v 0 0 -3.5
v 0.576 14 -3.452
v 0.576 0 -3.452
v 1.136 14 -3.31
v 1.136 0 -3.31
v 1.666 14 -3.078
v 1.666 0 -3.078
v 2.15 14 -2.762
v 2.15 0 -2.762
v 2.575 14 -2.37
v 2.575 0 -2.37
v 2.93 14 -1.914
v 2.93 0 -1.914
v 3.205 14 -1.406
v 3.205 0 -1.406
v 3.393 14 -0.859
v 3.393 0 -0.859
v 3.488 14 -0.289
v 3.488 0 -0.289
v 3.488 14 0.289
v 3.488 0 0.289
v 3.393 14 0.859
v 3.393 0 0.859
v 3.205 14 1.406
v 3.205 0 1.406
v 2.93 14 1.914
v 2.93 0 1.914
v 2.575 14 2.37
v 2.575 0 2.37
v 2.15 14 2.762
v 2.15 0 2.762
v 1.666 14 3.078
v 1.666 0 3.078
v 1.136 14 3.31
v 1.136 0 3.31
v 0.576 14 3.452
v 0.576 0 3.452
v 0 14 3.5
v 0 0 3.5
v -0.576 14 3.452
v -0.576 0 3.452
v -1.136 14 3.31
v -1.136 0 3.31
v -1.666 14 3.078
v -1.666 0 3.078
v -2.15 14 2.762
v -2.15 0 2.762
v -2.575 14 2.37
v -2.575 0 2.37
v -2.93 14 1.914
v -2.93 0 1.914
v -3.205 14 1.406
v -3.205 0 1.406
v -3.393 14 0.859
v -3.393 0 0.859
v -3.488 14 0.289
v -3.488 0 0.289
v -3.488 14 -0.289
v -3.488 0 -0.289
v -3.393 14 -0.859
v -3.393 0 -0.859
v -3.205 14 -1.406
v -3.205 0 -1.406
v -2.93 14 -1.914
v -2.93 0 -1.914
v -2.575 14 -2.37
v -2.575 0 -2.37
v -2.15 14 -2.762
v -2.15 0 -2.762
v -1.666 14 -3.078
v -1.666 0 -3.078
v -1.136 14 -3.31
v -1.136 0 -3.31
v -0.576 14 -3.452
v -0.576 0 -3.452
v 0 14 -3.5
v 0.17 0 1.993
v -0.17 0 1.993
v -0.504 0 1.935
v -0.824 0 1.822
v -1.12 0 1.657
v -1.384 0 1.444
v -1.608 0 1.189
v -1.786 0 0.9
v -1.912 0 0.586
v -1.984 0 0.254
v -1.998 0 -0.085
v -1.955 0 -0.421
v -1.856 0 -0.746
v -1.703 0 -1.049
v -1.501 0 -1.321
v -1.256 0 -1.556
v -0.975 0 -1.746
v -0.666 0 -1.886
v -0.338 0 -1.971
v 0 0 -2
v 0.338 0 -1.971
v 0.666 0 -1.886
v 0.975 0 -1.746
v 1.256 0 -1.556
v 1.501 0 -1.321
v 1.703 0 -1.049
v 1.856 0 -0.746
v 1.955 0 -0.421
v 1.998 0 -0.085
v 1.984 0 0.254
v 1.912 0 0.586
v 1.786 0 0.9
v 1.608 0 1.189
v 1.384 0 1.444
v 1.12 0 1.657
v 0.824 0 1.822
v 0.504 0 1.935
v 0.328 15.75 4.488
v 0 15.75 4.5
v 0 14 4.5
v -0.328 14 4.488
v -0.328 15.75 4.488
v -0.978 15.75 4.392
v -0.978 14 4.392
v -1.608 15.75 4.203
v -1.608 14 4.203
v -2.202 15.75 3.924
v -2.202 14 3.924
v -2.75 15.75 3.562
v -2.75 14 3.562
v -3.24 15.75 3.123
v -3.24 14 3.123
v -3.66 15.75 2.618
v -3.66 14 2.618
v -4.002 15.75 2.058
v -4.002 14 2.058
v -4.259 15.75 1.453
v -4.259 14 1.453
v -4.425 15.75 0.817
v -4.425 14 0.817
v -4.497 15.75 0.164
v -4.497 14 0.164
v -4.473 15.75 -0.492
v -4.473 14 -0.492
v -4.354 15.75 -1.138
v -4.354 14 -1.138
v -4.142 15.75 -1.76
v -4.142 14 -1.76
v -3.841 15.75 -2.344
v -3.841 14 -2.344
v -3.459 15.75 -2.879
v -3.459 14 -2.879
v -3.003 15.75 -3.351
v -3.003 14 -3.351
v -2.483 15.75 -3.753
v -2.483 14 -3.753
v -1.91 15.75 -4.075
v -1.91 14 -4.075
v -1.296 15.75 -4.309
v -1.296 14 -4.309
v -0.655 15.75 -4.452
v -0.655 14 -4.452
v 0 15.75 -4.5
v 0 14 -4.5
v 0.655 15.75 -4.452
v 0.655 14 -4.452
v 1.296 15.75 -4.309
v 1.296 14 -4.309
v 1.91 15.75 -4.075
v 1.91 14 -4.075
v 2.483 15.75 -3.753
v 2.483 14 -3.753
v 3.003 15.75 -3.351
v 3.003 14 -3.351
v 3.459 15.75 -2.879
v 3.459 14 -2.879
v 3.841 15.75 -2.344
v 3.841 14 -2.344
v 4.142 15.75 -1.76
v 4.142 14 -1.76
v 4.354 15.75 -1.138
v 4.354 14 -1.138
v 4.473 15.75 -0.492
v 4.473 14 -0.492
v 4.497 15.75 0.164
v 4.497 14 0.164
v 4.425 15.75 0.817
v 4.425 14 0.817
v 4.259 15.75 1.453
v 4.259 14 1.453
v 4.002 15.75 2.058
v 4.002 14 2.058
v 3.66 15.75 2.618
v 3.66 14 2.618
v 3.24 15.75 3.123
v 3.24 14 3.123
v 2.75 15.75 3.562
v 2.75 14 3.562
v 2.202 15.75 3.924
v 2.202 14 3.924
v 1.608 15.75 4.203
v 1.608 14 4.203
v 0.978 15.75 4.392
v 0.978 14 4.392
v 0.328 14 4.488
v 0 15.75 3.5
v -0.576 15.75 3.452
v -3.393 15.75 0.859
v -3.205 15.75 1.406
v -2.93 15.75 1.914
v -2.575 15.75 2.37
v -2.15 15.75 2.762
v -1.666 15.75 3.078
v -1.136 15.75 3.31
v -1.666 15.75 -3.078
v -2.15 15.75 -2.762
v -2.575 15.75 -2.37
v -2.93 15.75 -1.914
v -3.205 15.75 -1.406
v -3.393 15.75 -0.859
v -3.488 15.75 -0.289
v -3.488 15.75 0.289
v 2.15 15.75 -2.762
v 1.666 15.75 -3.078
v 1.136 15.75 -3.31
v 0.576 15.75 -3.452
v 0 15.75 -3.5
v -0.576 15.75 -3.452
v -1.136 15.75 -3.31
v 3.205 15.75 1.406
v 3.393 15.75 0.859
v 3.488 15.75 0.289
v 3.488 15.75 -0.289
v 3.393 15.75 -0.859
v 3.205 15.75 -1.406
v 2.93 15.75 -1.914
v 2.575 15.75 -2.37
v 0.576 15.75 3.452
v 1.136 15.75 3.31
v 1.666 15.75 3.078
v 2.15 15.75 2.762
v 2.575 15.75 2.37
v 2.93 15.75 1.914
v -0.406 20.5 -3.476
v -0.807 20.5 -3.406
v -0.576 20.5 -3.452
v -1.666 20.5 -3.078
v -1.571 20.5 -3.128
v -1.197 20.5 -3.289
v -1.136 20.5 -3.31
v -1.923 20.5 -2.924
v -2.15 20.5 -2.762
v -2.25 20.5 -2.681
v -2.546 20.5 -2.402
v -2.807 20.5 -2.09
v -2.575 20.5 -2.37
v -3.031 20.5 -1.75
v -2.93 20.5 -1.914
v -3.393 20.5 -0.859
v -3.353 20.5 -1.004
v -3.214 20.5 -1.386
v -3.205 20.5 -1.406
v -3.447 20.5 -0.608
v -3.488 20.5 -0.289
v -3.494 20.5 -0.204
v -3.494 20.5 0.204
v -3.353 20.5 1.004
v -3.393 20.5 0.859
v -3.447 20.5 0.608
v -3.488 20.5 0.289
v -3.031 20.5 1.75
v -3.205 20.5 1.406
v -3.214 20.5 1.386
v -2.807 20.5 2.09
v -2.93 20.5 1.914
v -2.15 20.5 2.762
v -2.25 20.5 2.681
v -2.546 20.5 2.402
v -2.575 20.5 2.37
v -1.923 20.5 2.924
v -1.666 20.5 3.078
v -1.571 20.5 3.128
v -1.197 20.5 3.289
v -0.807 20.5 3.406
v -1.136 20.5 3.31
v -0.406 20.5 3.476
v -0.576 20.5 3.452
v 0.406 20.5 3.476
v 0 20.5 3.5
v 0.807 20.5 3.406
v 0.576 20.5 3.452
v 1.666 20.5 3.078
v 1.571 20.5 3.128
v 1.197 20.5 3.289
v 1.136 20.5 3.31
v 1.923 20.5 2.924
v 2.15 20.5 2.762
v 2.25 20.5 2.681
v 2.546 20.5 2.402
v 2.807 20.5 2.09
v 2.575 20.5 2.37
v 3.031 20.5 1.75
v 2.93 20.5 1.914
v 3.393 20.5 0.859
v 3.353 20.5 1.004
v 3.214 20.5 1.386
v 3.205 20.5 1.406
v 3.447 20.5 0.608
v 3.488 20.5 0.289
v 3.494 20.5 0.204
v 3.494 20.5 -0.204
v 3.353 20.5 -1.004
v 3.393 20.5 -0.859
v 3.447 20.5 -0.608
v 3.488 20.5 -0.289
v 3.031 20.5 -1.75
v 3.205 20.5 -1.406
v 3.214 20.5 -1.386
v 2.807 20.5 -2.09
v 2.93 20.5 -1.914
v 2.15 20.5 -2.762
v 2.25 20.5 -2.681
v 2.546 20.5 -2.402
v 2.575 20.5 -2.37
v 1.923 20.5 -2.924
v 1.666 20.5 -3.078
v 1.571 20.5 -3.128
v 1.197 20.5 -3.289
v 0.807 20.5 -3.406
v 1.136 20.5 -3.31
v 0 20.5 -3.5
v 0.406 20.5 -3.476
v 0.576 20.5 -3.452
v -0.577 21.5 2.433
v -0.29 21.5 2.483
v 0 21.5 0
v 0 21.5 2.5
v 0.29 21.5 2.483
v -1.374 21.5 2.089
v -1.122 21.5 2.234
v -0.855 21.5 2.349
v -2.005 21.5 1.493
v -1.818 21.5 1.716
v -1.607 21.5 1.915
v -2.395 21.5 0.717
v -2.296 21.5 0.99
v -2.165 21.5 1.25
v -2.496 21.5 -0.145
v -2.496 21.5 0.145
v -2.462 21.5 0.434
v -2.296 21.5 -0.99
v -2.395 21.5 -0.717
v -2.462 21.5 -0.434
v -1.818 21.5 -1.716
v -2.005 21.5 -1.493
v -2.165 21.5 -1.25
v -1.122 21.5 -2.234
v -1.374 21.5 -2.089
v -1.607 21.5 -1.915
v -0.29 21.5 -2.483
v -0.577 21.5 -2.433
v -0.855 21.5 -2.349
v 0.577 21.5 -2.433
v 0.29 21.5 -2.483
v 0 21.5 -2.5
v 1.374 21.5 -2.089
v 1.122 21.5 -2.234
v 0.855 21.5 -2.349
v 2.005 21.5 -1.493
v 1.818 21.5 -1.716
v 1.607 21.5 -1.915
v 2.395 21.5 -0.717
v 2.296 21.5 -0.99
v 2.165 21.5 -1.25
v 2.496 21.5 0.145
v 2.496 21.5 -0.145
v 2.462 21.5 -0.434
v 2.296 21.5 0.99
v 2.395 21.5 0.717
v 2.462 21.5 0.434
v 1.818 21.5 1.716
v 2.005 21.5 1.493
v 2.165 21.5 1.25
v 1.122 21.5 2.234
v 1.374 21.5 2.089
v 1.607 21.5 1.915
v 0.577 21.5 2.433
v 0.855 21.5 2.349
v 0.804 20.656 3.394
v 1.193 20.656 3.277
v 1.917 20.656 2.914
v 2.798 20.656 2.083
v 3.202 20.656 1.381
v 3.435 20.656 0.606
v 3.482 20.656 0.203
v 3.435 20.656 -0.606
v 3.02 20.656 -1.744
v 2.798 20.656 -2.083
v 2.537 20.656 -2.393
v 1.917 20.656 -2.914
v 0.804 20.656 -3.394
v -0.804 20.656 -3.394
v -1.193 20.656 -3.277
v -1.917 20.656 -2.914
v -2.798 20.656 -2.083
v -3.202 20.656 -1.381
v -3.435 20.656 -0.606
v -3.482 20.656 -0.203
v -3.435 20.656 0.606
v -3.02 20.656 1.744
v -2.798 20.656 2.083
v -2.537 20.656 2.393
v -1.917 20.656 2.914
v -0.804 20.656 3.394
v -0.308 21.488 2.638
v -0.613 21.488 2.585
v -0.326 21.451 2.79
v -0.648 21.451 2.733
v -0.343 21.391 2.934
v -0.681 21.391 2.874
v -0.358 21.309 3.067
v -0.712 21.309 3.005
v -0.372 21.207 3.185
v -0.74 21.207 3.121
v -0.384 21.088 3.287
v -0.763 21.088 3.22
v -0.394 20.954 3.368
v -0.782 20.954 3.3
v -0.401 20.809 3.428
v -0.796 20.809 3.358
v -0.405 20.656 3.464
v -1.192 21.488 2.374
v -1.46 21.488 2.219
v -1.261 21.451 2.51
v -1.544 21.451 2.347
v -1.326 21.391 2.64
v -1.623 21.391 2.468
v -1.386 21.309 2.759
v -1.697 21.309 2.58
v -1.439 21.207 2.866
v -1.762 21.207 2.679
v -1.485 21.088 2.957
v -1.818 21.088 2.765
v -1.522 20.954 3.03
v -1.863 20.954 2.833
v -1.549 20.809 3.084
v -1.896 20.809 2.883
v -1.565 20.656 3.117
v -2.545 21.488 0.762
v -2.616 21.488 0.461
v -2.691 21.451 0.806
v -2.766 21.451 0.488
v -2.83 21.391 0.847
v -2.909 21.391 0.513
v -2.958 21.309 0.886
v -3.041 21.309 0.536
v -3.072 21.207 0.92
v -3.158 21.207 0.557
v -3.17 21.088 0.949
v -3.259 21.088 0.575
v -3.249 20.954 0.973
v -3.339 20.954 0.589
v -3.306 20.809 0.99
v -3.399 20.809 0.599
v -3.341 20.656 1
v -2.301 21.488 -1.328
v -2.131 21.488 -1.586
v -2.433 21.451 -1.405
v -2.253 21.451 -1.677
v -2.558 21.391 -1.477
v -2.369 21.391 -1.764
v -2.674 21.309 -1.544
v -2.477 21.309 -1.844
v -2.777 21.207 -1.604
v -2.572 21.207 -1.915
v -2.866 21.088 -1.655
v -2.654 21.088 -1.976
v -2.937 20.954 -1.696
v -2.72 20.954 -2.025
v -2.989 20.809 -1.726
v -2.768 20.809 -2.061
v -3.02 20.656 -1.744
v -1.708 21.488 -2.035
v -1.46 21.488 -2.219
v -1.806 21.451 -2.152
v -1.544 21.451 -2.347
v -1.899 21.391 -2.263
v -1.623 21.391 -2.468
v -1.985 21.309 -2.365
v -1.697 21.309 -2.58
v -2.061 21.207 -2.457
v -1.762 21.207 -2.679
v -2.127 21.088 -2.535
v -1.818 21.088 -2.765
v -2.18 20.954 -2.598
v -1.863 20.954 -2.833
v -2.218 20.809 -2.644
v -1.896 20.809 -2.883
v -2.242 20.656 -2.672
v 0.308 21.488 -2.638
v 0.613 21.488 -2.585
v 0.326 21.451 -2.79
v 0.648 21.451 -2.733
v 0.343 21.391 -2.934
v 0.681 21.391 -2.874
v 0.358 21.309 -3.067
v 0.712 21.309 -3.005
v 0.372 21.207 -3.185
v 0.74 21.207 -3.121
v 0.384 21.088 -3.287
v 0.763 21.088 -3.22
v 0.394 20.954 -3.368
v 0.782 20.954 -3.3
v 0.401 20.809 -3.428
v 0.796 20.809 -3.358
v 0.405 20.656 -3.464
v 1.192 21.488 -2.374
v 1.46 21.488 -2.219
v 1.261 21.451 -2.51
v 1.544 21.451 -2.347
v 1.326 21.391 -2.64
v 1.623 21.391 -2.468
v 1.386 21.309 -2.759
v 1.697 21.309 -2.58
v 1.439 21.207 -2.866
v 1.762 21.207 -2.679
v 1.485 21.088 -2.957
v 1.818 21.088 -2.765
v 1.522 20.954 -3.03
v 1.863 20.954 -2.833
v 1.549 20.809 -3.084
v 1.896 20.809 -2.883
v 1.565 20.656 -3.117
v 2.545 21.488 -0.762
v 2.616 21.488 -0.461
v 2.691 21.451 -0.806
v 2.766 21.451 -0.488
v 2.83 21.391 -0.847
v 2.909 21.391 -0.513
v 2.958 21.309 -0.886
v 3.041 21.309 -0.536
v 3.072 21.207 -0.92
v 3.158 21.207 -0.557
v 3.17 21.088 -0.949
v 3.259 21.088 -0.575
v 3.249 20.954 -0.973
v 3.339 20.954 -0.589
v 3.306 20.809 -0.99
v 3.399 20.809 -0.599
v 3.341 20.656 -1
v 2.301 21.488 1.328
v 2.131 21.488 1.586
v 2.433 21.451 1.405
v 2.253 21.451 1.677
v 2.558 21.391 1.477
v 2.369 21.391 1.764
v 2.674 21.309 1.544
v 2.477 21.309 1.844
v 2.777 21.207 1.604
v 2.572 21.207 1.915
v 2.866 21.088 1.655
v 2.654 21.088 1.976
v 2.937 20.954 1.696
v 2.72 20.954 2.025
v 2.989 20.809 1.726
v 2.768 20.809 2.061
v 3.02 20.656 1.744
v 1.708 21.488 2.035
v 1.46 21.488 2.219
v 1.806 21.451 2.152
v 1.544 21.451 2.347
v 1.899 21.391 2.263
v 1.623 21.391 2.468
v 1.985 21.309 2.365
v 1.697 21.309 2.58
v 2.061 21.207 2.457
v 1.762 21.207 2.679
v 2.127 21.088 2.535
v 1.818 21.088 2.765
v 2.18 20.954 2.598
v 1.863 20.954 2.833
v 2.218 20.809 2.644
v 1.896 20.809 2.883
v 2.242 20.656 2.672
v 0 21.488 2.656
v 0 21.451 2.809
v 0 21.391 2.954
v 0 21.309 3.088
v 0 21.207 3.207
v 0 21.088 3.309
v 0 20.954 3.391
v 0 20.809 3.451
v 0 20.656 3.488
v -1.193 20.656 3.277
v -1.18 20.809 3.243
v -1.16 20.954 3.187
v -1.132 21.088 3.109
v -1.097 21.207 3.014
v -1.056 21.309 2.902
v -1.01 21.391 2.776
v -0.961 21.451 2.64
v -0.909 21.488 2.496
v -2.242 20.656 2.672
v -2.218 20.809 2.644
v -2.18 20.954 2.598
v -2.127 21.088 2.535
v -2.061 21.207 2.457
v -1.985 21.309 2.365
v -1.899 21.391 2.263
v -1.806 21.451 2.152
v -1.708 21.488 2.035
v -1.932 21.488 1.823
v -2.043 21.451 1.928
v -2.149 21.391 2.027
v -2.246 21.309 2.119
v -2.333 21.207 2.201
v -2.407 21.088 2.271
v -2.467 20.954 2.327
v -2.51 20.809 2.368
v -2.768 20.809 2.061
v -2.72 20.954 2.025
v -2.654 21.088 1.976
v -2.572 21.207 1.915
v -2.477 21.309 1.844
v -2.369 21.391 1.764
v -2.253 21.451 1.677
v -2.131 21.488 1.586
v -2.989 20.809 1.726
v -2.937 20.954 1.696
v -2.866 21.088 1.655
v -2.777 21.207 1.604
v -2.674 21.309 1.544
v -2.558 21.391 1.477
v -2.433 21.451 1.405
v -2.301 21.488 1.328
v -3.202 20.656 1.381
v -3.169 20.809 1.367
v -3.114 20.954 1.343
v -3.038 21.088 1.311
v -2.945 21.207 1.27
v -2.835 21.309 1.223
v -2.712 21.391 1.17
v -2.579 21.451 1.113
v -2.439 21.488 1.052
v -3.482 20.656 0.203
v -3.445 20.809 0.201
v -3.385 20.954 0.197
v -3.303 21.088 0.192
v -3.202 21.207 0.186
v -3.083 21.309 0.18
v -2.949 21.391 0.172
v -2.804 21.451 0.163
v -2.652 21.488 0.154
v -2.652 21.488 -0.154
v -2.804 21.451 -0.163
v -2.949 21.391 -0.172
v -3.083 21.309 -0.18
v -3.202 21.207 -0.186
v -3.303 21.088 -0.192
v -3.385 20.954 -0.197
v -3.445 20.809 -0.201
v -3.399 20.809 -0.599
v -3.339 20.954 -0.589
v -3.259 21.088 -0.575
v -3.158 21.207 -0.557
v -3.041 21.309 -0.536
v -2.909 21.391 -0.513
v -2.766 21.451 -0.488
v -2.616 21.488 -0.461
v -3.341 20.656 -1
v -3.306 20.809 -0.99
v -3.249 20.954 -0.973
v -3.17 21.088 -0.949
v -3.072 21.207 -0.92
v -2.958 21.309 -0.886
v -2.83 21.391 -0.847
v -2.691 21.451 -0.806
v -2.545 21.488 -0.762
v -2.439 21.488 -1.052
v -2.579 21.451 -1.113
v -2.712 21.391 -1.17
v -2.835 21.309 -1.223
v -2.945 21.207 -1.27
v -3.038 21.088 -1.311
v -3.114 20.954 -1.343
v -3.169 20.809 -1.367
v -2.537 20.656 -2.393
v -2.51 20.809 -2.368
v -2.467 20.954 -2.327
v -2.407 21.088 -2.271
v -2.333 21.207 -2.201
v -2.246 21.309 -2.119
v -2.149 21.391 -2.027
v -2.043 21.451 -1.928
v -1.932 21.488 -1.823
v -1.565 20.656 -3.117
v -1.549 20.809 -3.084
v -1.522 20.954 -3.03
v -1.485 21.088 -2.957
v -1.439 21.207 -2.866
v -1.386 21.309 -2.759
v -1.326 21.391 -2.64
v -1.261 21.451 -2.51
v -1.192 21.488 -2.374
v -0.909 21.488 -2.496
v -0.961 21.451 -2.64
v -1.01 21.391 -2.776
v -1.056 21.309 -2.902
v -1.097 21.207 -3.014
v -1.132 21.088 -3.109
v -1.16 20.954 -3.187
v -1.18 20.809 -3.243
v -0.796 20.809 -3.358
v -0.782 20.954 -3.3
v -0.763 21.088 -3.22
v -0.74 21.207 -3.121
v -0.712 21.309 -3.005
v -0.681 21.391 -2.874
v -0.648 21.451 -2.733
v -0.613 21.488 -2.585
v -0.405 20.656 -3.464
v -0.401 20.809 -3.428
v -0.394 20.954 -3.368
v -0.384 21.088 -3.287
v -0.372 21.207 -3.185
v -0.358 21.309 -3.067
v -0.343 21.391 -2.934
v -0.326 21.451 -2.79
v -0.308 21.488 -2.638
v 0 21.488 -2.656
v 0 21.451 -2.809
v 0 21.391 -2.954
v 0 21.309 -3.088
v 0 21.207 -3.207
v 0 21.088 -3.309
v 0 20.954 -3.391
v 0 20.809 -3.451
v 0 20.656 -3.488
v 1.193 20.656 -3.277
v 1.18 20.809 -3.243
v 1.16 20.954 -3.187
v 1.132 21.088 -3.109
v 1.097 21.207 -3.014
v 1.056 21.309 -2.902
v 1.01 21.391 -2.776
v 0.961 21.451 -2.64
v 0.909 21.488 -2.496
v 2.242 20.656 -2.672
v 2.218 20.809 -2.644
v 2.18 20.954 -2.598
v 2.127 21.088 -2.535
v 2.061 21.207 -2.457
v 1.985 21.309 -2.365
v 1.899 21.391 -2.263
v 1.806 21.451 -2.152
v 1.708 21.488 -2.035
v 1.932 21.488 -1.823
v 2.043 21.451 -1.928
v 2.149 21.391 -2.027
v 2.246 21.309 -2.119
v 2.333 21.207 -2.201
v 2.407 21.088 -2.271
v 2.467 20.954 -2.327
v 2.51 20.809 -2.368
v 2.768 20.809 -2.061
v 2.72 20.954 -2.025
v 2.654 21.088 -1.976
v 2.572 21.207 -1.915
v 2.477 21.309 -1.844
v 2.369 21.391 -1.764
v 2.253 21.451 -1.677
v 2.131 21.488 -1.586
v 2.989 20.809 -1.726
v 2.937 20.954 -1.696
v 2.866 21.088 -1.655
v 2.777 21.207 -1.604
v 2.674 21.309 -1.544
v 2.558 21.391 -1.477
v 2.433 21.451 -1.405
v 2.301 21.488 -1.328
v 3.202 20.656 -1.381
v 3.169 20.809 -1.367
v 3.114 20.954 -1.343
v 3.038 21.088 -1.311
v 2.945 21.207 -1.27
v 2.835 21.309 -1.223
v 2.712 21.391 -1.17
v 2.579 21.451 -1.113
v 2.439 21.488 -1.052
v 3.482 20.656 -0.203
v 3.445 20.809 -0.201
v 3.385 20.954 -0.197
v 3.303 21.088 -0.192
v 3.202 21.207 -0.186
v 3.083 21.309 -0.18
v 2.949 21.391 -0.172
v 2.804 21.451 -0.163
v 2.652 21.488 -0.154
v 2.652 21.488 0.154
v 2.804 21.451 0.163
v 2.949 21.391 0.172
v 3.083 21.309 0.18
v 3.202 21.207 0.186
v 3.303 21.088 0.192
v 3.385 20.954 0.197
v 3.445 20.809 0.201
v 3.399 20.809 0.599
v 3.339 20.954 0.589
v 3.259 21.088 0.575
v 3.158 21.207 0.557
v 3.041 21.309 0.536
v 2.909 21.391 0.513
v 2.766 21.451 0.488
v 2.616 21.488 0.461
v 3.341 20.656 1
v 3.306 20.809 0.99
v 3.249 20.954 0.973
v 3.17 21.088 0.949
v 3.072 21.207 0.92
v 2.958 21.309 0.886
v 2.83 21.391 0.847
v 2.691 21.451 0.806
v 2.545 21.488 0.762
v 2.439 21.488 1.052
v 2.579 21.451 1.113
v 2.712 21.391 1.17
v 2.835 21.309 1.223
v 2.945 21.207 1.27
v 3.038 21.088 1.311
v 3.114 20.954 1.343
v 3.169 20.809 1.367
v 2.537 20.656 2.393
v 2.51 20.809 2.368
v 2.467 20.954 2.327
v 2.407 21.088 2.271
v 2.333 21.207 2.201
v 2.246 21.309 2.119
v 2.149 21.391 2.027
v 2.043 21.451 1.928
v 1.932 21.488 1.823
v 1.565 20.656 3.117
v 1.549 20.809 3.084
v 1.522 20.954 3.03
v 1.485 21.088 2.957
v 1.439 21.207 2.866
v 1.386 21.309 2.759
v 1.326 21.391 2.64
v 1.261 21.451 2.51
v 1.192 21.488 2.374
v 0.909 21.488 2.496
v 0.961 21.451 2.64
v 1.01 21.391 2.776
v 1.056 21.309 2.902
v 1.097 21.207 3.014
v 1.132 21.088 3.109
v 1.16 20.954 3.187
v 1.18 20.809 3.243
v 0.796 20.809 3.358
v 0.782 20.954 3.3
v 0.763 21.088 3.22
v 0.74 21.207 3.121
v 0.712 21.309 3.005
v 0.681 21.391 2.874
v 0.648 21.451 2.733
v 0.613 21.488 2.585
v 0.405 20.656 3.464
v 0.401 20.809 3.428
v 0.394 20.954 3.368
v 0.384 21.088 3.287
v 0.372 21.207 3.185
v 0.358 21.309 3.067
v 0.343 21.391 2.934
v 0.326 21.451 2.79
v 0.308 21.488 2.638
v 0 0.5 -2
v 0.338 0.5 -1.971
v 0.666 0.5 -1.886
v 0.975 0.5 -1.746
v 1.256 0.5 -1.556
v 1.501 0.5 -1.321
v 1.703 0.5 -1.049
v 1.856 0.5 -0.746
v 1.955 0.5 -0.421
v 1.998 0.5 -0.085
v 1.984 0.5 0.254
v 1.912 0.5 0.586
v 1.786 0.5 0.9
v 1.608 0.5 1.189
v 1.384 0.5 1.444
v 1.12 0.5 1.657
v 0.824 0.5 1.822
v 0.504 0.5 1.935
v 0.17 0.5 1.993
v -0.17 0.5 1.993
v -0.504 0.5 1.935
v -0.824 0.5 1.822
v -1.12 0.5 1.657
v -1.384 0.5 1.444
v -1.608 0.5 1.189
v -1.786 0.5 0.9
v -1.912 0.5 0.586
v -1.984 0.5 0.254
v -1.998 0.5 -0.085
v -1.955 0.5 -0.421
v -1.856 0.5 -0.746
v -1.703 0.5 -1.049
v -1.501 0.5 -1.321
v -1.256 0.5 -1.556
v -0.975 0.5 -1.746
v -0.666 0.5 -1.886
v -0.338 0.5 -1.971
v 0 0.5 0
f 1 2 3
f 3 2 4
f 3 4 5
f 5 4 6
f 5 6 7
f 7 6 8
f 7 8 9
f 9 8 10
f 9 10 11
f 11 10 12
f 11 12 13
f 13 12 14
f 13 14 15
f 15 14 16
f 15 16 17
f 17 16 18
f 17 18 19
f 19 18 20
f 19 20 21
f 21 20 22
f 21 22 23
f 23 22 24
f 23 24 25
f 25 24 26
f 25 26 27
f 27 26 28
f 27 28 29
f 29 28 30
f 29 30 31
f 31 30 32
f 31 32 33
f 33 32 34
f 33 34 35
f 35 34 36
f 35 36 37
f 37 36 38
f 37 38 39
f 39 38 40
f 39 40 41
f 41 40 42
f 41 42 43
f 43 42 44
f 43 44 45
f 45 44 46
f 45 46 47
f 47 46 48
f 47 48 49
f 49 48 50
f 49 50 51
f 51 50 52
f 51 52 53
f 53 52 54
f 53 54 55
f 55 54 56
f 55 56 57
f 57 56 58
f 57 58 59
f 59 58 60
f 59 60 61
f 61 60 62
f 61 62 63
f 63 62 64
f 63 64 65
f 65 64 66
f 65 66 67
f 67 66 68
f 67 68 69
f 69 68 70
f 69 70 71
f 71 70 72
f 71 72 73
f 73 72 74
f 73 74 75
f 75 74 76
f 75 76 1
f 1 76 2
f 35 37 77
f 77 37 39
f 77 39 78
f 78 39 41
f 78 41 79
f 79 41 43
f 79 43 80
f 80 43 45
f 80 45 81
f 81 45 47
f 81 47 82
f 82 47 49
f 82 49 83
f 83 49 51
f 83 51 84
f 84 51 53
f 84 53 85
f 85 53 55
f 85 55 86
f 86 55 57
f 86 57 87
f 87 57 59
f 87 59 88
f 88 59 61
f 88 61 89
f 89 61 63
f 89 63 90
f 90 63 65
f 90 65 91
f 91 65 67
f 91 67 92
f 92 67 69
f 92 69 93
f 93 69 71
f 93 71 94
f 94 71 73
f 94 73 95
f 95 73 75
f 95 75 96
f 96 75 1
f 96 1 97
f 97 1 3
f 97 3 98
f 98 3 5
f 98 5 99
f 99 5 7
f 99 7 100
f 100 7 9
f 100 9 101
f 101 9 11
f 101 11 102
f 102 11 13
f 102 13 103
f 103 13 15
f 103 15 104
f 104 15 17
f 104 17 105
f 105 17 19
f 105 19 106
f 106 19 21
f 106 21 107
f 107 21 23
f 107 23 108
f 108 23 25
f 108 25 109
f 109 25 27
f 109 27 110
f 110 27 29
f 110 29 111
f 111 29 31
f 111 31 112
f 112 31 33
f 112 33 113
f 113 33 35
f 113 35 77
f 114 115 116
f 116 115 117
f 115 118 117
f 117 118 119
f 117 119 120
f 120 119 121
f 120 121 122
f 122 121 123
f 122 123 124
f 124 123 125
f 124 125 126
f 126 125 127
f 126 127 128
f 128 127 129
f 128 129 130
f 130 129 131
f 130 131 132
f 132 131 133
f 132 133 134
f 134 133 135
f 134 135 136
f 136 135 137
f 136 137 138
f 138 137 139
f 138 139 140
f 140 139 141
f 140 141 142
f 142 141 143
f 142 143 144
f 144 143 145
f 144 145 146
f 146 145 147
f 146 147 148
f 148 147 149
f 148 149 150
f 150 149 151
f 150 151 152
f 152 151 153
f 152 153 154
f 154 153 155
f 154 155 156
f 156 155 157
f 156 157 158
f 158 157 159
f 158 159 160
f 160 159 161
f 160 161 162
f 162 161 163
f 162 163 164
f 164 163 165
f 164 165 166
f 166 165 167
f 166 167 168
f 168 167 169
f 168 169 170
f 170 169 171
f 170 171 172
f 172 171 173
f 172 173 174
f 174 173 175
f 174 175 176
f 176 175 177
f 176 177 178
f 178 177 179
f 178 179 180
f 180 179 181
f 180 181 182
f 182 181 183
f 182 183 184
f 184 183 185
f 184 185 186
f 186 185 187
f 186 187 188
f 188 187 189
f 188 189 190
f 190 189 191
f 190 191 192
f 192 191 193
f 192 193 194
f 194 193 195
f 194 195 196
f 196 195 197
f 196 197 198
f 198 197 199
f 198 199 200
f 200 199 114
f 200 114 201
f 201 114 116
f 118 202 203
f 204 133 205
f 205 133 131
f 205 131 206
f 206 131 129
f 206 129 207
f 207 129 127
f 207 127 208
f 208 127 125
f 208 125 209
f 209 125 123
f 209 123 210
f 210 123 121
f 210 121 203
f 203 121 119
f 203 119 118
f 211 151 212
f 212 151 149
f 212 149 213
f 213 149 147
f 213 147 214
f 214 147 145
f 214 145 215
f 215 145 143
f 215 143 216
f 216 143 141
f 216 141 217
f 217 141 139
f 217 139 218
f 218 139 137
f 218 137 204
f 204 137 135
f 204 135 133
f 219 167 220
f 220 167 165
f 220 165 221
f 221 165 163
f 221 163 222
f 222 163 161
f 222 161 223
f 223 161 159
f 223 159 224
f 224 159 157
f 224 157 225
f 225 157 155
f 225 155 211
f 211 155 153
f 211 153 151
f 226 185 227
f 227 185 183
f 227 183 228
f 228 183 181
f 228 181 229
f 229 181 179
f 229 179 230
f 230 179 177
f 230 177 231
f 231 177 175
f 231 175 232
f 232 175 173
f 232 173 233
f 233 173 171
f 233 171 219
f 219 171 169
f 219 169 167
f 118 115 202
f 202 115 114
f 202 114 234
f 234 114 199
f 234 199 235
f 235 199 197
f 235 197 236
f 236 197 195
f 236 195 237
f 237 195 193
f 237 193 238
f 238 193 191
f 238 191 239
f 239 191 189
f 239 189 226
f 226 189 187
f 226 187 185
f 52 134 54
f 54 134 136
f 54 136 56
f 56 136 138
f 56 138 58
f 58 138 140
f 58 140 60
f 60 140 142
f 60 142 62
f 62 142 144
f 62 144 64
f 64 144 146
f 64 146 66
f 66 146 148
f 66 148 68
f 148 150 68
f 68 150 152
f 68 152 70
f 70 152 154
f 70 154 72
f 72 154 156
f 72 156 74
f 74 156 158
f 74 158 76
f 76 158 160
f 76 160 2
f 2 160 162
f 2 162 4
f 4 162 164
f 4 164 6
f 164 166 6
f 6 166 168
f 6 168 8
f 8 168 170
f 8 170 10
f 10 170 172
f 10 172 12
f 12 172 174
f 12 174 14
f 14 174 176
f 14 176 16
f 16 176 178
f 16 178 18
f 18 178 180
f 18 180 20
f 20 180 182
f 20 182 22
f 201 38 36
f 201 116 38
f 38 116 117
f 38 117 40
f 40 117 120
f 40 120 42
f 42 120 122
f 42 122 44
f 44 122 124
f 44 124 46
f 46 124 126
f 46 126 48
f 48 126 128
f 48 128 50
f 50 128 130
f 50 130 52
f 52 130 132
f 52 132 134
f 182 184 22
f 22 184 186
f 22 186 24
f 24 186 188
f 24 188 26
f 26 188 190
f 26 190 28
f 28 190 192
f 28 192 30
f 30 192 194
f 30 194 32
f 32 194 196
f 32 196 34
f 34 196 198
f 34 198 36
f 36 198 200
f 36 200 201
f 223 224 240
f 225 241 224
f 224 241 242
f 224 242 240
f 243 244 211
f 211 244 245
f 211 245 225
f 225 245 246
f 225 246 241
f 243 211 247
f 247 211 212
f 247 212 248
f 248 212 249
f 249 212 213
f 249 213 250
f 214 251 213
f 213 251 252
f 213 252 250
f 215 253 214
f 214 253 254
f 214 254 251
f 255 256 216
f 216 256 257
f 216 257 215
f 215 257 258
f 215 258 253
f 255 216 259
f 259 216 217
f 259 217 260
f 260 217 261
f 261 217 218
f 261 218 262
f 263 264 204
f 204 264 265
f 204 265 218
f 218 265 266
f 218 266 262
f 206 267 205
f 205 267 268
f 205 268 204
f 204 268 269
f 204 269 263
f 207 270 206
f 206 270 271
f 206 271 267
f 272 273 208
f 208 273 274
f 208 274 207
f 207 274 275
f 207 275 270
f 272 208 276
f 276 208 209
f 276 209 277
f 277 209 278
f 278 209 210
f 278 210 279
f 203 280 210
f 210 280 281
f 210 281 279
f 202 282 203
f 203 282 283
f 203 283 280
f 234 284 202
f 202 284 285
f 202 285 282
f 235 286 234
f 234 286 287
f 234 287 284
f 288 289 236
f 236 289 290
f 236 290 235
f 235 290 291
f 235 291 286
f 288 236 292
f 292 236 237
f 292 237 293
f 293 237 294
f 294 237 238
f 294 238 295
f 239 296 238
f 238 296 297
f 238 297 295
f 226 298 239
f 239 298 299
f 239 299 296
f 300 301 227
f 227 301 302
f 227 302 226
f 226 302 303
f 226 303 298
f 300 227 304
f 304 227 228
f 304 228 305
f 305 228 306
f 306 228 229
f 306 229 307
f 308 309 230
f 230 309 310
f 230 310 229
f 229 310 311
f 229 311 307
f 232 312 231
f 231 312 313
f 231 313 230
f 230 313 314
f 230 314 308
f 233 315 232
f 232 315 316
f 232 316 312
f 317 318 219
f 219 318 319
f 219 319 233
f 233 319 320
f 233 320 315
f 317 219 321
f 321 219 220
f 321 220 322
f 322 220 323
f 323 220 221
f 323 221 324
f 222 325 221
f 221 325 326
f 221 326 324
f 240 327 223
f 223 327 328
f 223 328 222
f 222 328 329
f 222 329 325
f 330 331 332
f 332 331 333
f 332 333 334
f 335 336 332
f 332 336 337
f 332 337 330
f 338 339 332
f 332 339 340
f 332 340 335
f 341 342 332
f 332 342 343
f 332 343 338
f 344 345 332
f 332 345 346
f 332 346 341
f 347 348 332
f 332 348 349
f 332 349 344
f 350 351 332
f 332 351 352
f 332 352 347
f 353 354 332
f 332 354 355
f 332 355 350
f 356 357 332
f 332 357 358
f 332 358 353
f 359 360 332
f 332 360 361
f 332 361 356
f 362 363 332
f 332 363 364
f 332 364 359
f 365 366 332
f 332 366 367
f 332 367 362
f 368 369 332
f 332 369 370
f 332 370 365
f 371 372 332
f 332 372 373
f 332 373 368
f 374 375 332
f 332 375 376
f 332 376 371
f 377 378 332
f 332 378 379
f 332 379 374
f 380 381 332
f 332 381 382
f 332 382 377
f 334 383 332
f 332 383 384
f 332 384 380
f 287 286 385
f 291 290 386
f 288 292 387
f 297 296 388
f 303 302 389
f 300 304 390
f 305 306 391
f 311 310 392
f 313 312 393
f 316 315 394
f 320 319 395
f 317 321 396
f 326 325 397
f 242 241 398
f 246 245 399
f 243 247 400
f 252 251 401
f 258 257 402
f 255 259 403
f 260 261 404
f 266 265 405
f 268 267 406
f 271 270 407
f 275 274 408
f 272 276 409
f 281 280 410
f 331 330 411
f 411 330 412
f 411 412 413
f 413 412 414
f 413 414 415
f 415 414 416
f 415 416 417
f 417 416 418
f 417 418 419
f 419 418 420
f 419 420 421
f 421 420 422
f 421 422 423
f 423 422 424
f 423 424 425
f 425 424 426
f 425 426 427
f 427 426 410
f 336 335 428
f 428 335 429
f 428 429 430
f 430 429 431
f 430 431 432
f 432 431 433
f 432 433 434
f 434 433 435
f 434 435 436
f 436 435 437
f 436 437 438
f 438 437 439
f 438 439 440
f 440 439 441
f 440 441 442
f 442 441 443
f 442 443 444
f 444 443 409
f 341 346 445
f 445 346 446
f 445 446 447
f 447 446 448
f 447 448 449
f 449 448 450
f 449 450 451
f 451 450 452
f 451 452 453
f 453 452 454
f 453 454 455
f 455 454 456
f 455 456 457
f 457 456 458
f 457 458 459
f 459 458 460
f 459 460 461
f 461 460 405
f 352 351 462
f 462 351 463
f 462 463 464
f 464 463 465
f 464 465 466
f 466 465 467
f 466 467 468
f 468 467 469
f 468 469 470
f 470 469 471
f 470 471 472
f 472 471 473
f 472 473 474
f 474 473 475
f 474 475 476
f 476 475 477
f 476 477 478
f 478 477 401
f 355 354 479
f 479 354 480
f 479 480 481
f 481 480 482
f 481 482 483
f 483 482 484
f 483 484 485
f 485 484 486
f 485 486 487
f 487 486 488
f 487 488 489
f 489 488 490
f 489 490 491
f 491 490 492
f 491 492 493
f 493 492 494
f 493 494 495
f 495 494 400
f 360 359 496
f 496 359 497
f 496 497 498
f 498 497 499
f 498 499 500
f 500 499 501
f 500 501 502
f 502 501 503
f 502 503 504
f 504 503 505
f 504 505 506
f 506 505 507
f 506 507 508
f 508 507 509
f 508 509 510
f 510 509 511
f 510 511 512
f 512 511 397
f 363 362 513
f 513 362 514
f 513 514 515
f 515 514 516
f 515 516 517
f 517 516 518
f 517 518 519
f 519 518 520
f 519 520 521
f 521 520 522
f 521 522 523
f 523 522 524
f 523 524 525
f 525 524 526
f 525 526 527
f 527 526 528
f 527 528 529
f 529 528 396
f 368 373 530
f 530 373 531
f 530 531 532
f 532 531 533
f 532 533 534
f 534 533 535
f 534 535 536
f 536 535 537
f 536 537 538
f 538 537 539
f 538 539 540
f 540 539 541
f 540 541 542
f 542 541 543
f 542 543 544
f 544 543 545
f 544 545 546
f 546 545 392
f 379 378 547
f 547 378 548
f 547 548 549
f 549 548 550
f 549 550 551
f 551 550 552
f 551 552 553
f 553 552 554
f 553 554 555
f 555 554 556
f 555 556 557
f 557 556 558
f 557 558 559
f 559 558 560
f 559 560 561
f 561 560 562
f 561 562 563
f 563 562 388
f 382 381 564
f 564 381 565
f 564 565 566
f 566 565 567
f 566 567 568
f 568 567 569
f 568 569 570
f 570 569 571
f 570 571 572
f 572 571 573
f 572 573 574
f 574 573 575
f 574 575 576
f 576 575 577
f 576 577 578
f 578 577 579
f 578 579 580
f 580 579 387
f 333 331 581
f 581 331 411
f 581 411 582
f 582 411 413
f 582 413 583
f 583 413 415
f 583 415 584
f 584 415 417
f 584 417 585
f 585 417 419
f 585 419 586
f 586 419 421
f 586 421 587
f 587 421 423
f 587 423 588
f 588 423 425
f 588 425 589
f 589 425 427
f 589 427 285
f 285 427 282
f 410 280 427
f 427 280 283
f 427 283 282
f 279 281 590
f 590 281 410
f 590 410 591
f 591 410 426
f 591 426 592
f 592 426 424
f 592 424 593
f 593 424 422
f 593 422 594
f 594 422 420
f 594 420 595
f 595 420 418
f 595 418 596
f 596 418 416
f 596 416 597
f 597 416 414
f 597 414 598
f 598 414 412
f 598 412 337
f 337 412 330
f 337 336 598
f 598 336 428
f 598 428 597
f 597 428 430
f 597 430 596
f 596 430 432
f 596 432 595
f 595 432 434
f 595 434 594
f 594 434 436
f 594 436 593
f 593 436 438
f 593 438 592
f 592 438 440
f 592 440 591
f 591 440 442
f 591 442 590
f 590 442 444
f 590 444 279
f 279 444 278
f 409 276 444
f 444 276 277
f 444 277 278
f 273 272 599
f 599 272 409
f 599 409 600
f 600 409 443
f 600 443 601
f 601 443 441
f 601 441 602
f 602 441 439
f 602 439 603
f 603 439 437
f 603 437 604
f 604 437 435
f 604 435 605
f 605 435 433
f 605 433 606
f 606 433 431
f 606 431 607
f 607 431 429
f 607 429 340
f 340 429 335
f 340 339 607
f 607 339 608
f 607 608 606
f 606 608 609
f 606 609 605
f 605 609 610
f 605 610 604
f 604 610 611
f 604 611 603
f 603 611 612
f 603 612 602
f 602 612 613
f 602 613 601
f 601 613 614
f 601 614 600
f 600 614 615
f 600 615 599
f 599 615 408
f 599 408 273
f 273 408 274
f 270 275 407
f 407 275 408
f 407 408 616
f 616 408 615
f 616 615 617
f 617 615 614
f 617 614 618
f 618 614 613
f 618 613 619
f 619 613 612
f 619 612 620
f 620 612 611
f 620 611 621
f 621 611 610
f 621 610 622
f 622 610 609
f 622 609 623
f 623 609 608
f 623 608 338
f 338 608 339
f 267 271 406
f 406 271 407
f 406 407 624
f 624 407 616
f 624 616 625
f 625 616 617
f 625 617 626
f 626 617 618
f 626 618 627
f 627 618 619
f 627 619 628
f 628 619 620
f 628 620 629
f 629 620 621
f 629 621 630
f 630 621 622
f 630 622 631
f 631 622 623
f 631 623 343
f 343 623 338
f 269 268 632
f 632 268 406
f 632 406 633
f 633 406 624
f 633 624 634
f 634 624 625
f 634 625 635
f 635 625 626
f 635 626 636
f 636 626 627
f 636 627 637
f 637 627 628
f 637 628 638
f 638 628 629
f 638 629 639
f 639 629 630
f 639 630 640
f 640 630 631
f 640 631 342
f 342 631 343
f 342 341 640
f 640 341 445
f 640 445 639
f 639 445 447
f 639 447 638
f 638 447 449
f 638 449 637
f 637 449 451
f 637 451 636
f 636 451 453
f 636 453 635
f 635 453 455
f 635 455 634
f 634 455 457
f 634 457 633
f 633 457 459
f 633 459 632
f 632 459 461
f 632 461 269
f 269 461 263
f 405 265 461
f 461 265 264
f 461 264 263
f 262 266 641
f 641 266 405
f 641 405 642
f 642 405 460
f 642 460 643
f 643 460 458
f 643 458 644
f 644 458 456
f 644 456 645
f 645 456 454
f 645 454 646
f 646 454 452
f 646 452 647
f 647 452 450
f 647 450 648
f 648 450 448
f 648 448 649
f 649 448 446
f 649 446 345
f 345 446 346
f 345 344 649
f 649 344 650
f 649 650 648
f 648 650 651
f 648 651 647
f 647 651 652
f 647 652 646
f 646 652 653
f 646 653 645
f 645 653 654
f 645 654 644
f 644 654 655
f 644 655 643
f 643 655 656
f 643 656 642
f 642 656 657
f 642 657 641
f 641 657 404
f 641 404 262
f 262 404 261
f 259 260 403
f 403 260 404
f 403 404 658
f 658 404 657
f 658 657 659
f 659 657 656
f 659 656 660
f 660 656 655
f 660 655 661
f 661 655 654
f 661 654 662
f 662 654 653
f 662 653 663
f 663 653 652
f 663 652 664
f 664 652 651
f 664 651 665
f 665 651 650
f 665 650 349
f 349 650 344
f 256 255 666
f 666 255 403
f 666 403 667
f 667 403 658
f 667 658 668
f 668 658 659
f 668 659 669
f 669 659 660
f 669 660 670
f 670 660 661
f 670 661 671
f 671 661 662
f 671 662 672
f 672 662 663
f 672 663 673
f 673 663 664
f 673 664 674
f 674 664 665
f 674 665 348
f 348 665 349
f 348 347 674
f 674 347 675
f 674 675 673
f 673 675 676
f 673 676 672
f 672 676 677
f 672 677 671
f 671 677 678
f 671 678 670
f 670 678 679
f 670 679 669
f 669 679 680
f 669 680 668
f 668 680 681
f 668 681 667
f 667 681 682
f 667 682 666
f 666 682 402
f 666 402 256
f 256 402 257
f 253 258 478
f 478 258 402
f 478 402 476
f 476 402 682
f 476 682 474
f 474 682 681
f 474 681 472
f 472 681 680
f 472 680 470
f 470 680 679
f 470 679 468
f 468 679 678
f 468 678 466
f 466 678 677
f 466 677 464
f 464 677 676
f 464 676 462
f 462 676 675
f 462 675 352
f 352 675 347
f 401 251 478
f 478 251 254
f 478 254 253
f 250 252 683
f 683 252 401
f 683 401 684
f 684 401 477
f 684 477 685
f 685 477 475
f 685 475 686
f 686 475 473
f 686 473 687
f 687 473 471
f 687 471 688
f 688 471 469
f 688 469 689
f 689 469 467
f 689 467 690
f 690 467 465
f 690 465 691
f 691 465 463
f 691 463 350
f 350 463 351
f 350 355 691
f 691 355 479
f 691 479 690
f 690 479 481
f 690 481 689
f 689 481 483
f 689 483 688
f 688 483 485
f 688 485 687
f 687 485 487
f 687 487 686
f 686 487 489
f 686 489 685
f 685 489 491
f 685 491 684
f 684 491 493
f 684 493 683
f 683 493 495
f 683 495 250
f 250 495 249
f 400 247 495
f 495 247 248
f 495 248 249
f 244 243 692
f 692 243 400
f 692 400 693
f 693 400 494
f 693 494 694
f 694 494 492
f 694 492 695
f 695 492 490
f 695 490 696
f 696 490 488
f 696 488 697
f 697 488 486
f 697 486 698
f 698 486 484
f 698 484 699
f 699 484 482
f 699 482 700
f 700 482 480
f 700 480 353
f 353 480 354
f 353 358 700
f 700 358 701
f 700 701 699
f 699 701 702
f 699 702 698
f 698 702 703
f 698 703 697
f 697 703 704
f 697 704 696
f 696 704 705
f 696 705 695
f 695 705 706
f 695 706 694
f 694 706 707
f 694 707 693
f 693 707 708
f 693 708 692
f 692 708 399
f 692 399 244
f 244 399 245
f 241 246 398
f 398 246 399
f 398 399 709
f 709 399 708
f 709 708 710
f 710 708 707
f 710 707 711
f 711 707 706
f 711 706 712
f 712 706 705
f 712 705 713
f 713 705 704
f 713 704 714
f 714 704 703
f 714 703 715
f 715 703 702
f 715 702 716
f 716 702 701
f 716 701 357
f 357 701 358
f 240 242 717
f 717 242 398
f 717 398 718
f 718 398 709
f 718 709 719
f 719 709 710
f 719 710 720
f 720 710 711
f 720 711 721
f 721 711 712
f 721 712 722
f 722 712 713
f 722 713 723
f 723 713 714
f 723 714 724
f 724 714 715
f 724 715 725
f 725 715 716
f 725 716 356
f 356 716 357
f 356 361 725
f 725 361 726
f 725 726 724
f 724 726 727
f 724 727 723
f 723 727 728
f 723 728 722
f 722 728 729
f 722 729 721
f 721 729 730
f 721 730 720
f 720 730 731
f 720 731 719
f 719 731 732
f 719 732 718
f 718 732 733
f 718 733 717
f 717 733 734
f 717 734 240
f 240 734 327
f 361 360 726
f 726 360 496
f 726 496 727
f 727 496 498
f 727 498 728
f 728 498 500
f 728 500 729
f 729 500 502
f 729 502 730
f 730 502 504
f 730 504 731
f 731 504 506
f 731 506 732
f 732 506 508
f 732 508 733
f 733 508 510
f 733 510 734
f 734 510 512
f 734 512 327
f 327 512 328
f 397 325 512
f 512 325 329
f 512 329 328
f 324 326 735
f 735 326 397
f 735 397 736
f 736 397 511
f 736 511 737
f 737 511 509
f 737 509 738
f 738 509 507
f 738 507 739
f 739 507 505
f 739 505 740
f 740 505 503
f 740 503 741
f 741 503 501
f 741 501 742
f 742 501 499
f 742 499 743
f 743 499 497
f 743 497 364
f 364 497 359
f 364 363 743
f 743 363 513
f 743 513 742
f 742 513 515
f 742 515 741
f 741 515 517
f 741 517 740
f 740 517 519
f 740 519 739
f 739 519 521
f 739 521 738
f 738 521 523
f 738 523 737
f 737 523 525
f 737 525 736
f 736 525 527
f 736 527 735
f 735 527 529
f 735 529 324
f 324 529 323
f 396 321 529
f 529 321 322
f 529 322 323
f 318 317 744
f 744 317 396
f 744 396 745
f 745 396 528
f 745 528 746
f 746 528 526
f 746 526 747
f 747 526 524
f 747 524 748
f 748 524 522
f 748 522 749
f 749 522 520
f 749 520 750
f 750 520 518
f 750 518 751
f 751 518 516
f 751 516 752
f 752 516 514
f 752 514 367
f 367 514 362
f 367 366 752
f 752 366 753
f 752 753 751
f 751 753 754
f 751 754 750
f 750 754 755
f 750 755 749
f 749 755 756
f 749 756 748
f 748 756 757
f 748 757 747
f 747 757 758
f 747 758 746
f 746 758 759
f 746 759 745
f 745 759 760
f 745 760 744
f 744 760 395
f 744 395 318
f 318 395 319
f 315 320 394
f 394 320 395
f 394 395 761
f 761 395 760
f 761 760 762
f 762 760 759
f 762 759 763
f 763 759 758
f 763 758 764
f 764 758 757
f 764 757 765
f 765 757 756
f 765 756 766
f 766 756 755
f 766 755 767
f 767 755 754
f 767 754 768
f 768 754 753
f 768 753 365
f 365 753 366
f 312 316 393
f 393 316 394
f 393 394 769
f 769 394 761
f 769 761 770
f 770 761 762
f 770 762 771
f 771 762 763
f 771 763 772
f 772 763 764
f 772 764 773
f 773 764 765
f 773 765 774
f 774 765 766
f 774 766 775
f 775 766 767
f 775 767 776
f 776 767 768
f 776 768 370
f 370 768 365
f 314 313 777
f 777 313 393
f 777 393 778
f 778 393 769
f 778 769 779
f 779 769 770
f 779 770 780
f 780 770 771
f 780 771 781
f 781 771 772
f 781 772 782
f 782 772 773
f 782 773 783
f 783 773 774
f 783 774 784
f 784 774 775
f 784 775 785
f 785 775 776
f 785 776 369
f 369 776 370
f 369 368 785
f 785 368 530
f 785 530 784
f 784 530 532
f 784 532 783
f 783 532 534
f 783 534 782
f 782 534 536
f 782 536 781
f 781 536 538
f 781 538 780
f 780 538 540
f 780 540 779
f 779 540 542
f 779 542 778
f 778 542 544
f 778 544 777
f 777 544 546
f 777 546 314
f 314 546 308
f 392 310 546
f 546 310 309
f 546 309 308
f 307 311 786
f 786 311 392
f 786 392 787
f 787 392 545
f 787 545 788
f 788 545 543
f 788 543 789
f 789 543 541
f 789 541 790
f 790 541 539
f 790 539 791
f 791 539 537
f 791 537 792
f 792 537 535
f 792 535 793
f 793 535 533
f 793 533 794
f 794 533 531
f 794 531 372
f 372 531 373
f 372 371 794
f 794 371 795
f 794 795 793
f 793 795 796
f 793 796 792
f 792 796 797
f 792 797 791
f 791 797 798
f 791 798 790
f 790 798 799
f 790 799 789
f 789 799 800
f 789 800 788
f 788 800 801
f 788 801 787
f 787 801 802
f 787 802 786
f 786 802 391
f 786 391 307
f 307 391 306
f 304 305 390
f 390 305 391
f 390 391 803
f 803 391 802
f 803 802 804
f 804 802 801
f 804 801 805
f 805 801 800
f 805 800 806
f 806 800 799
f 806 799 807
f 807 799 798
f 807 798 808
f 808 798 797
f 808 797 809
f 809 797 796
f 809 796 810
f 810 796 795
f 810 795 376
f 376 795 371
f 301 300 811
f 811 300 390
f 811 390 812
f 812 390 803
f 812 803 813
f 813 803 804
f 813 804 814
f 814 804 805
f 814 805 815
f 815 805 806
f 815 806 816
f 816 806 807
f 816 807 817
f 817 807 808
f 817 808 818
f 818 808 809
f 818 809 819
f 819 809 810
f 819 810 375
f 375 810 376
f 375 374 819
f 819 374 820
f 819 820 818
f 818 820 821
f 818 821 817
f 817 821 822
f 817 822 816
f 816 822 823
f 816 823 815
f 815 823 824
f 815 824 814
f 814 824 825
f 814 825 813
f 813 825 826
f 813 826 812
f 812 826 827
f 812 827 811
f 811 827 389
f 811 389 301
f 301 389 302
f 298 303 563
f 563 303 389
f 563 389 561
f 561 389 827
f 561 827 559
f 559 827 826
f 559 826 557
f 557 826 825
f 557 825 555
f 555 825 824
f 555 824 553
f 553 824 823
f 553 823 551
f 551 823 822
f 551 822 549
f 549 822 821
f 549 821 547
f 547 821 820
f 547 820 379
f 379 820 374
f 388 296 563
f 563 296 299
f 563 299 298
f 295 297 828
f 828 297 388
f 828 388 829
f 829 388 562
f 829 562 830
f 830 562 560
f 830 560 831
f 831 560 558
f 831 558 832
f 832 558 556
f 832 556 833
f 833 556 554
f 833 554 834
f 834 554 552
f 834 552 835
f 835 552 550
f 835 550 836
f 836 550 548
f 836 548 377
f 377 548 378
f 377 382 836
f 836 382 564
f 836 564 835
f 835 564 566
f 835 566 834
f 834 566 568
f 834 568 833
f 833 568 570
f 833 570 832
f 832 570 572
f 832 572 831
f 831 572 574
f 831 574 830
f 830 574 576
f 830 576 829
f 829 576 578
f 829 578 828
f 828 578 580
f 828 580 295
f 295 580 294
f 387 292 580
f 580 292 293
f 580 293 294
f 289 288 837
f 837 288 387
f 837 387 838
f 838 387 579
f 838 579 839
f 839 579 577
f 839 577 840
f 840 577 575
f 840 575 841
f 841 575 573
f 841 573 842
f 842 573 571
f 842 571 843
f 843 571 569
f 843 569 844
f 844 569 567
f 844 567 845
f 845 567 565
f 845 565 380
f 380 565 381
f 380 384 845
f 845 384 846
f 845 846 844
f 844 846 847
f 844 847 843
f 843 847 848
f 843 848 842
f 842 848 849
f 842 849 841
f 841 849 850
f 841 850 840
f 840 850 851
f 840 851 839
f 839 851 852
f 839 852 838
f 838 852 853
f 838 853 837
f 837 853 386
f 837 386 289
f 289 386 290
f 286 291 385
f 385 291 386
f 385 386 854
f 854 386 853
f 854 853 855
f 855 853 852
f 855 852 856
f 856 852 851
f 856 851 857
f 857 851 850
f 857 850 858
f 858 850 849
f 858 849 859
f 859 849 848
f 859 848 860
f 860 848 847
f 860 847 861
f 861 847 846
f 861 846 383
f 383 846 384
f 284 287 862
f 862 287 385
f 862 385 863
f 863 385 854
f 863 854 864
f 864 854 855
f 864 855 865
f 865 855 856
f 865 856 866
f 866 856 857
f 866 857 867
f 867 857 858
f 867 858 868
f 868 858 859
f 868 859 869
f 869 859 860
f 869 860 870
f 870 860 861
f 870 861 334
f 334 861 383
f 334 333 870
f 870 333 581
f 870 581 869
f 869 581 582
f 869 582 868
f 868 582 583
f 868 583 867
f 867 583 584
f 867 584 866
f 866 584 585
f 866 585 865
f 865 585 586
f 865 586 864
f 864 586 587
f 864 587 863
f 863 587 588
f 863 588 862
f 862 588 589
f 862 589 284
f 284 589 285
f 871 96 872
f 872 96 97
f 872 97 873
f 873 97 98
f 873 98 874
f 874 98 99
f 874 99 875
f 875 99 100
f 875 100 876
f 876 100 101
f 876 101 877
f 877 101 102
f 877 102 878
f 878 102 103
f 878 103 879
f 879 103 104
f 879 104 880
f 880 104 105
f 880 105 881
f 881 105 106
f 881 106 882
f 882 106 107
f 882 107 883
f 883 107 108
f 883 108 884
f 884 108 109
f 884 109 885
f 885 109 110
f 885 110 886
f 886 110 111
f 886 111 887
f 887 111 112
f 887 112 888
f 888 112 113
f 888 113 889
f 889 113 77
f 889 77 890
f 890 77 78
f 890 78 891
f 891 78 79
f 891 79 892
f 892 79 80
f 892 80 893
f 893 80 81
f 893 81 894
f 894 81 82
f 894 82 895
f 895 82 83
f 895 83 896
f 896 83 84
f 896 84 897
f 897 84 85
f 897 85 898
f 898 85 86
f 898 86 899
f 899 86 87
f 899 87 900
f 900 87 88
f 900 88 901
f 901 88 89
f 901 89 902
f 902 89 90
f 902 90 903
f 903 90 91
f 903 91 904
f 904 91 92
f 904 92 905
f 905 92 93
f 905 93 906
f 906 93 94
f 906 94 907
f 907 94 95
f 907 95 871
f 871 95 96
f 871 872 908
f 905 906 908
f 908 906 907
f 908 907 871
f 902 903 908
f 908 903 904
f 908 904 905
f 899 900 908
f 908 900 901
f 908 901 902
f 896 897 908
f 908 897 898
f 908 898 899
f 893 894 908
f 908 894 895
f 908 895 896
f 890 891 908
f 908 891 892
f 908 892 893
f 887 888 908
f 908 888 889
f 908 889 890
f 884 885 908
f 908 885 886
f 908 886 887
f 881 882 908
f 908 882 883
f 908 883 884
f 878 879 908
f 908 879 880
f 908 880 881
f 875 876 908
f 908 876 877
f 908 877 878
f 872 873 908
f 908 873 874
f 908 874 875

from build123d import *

# Parameters (mm, degrees)
SKETCH1_R           = 3.5
BOSS_EXTRUDE1_DEPTH = 14
BOSS_EXTRUDE2_START = 14
SKETCH1_4_R         = 4.5
BOSS_EXTRUDE2_DEPTH = 1.75
BOSS_EXTRUDE3_START = 15.75
SKETCH1_5_R         = 3.5
BOSS_EXTRUDE3_DEPTH = 5.75
FILLET1_R           = 1
SKETCH2_R           = 2
CUT_EXTRUDE1_DEPTH  = 0.5


with BuildPart() as part:
    # Sketch1 → Boss-Extrude1 (new body)
    with BuildSketch(Plane(origin=(0, 0, 0), x_dir=(1, 0, 0), z_dir=(0, 1, 0))):
        with Locations(Location((0, 0, 0), (0, 0, 270))):
            Circle(SKETCH1_R)
    extrude(amount=BOSS_EXTRUDE1_DEPTH)

    # Sketch1<4> → Boss-Extrude2 (add)
    with BuildSketch(Plane(origin=(0, 0, 0), x_dir=(1, 0, 0), z_dir=(0, 1, 0)).offset(BOSS_EXTRUDE2_START)):
        with Locations(Location((0, 0, 0), (0, 0, 270))):
            Circle(SKETCH1_4_R)
    extrude(amount=BOSS_EXTRUDE2_DEPTH)

    # Sketch1<5> → Boss-Extrude3 (add)
    with BuildSketch(Plane(origin=(0, 0, 0), x_dir=(1, 0, 0), z_dir=(0, 1, 0)).offset(BOSS_EXTRUDE3_START)):
        with Locations(Location((0, 0, 0), (0, 0, 270))):
            Circle(SKETCH1_5_R)
    extrude(amount=BOSS_EXTRUDE3_DEPTH)

    # Fillet1
    fillet1_edges = [part.edges().sort_by_distance(p)[0] for p in [
        (0, 21.5, -3.5),
    ]]
    fillet(fillet1_edges, radius=FILLET1_R)

    # Sketch2 → Cut-Extrude1 (cut)
    with BuildSketch(Plane.XZ):
        with Locations(Location((0, 0, 0), (0, 0, 270))):
            Circle(SKETCH2_R)
    extrude(amount=-CUT_EXTRUDE1_DEPTH, mode=Mode.SUBTRACT)


solid = part.part
